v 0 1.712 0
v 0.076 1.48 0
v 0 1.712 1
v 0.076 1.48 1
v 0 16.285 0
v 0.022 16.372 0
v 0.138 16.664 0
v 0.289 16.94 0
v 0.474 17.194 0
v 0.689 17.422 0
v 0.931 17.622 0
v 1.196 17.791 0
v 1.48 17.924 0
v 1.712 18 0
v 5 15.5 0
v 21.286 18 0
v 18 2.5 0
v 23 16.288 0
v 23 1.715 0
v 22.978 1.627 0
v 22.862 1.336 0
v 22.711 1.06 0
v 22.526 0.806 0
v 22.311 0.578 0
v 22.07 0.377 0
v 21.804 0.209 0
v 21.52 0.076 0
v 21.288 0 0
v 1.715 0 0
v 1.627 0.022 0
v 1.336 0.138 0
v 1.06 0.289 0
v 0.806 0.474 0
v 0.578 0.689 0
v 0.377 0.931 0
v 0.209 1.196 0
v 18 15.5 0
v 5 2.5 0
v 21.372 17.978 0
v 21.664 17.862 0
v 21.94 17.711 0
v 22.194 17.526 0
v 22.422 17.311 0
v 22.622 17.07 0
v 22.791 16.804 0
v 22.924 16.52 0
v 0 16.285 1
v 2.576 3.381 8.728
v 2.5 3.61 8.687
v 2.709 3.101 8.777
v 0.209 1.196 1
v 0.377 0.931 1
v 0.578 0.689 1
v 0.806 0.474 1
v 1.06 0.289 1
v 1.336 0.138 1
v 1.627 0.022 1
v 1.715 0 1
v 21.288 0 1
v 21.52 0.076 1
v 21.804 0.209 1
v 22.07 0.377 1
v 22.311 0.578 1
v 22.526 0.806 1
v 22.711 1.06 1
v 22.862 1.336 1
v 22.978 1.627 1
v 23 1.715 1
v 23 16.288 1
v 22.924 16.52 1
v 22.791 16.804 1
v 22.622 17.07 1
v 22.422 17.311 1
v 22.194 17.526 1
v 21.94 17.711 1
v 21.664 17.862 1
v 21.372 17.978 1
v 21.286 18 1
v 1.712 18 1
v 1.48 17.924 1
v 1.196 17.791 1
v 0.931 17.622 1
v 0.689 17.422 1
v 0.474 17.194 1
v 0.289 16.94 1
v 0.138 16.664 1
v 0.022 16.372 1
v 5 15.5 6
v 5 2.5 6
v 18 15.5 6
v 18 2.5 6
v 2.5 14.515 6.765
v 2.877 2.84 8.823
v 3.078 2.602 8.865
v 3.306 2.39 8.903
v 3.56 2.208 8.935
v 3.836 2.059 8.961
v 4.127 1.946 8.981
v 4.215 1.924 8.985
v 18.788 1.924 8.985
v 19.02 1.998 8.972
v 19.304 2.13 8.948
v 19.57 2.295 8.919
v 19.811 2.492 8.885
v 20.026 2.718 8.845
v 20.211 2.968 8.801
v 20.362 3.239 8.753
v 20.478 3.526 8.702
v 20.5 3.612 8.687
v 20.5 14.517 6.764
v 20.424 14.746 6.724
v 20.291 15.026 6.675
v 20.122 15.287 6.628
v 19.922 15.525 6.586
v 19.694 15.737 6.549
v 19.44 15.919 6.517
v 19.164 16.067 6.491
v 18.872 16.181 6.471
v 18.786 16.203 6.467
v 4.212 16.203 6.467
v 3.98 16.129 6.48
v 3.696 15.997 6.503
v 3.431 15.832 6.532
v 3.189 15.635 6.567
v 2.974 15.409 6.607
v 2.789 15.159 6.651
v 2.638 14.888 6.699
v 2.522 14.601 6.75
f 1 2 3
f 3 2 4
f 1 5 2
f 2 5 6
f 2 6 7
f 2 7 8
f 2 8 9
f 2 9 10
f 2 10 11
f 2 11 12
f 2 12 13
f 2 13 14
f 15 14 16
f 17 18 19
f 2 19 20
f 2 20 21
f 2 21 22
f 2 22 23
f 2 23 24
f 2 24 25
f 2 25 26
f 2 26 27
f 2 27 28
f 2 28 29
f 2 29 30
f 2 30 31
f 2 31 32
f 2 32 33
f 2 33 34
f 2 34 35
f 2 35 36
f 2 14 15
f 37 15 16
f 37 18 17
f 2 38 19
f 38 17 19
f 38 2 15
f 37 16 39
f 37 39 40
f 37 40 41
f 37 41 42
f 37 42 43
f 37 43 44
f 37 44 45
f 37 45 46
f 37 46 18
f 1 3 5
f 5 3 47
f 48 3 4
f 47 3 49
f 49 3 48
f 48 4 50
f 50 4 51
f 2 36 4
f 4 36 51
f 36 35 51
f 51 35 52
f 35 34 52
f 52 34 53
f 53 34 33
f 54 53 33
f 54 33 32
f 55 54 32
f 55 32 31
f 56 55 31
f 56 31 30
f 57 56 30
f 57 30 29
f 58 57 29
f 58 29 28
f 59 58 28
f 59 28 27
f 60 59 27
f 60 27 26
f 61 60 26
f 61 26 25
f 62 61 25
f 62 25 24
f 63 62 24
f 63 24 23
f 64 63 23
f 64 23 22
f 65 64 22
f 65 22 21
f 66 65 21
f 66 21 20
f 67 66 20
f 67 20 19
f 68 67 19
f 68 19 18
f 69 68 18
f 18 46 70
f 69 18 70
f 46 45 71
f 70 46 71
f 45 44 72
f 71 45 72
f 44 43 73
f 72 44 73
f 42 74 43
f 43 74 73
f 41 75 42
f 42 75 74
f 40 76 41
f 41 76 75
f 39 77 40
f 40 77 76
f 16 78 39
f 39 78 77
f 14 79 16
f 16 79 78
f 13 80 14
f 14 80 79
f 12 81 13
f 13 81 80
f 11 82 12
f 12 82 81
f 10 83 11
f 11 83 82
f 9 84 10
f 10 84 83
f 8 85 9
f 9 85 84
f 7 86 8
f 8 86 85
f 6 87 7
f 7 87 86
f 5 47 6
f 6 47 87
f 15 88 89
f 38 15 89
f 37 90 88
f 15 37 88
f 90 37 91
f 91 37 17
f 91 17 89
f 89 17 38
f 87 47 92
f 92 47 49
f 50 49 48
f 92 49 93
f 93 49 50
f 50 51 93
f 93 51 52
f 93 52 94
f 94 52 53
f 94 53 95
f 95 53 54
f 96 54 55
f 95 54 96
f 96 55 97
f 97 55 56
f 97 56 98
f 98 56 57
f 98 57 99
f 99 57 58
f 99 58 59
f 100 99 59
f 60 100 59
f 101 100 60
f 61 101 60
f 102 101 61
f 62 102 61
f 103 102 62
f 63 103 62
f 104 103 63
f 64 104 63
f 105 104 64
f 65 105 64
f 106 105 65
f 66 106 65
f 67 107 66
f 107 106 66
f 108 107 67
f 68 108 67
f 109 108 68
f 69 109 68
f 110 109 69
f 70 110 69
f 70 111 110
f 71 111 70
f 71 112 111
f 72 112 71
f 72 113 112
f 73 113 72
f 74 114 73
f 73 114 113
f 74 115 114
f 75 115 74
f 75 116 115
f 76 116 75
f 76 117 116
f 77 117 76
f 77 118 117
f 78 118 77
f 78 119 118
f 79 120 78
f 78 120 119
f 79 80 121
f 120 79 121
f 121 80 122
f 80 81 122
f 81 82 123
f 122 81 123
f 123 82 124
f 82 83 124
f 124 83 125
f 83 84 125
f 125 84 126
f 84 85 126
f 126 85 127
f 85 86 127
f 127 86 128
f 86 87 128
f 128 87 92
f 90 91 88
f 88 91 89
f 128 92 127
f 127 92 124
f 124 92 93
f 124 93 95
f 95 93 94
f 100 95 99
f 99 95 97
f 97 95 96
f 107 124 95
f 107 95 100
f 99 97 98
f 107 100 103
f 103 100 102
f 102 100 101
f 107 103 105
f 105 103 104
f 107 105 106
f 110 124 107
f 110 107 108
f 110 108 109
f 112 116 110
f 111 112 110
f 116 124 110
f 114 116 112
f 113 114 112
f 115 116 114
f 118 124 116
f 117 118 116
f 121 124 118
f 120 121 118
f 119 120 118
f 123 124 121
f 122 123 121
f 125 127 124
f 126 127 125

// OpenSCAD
// file: libs/rounded_corners.scad
// Round Corners
// author: Bradley Jones

$fn=50;

// Makes the cut out required to diff with the cube
module cut_out(radius, height) {
	translate([-radius/2,-radius/2,height/2]) 
	difference() {
		translate([radius/4,radius/4,0]) cube([radius/2, radius/2, height], center=true);
		cylinder(height, d=radius, center=true);
	}
}

// corners=[(0,0),(1,0),(0,1),(1,1)]
module rounded_cube(width, length, height, radius, corners=[true,true,true,true]) {
	difference() {
		cube([width, length, height]);
		// Starting with corner at 0,0 then working anti-clockwise
		if (corners[0]==true) 
			translate([-0.1,-0.1,0]) rotate([0,0,180]) cut_out(radius, height);
		if (corners[1]==true) 
			translate([width + 0.1,-0.1,0]) rotate([0,0,270]) cut_out(radius, height);
		if (corners[2]==true) 
			translate([width + 0.1,length+0.1,0]) rotate([0,0,0]) cut_out(radius, height);
		if (corners[3]==true) 
			translate([-0.1,length + 0.1,0]) rotate([0,0,90]) cut_out(radius, height);

	}
}
// main file
$fn = 50;
use <libs/rounded_corners.scad>;

top_length = 18;
top_width = 14.5;
bottom_length = 23;
bottom_width = 18;
height = 9;

difference() {
	hull() {
		rounded_cube(bottom_length, bottom_width, 1, 5);
		translate([(bottom_length - top_length)/2, (bottom_width - top_width)/2,height-1]) rotate([-10,0,0]) rounded_cube(top_length, top_width, 1, 5);
	}
	translate([(bottom_length - 13)/2, (bottom_width - 13)/2, 0]) cube([13,13,height - 3]); 
}
